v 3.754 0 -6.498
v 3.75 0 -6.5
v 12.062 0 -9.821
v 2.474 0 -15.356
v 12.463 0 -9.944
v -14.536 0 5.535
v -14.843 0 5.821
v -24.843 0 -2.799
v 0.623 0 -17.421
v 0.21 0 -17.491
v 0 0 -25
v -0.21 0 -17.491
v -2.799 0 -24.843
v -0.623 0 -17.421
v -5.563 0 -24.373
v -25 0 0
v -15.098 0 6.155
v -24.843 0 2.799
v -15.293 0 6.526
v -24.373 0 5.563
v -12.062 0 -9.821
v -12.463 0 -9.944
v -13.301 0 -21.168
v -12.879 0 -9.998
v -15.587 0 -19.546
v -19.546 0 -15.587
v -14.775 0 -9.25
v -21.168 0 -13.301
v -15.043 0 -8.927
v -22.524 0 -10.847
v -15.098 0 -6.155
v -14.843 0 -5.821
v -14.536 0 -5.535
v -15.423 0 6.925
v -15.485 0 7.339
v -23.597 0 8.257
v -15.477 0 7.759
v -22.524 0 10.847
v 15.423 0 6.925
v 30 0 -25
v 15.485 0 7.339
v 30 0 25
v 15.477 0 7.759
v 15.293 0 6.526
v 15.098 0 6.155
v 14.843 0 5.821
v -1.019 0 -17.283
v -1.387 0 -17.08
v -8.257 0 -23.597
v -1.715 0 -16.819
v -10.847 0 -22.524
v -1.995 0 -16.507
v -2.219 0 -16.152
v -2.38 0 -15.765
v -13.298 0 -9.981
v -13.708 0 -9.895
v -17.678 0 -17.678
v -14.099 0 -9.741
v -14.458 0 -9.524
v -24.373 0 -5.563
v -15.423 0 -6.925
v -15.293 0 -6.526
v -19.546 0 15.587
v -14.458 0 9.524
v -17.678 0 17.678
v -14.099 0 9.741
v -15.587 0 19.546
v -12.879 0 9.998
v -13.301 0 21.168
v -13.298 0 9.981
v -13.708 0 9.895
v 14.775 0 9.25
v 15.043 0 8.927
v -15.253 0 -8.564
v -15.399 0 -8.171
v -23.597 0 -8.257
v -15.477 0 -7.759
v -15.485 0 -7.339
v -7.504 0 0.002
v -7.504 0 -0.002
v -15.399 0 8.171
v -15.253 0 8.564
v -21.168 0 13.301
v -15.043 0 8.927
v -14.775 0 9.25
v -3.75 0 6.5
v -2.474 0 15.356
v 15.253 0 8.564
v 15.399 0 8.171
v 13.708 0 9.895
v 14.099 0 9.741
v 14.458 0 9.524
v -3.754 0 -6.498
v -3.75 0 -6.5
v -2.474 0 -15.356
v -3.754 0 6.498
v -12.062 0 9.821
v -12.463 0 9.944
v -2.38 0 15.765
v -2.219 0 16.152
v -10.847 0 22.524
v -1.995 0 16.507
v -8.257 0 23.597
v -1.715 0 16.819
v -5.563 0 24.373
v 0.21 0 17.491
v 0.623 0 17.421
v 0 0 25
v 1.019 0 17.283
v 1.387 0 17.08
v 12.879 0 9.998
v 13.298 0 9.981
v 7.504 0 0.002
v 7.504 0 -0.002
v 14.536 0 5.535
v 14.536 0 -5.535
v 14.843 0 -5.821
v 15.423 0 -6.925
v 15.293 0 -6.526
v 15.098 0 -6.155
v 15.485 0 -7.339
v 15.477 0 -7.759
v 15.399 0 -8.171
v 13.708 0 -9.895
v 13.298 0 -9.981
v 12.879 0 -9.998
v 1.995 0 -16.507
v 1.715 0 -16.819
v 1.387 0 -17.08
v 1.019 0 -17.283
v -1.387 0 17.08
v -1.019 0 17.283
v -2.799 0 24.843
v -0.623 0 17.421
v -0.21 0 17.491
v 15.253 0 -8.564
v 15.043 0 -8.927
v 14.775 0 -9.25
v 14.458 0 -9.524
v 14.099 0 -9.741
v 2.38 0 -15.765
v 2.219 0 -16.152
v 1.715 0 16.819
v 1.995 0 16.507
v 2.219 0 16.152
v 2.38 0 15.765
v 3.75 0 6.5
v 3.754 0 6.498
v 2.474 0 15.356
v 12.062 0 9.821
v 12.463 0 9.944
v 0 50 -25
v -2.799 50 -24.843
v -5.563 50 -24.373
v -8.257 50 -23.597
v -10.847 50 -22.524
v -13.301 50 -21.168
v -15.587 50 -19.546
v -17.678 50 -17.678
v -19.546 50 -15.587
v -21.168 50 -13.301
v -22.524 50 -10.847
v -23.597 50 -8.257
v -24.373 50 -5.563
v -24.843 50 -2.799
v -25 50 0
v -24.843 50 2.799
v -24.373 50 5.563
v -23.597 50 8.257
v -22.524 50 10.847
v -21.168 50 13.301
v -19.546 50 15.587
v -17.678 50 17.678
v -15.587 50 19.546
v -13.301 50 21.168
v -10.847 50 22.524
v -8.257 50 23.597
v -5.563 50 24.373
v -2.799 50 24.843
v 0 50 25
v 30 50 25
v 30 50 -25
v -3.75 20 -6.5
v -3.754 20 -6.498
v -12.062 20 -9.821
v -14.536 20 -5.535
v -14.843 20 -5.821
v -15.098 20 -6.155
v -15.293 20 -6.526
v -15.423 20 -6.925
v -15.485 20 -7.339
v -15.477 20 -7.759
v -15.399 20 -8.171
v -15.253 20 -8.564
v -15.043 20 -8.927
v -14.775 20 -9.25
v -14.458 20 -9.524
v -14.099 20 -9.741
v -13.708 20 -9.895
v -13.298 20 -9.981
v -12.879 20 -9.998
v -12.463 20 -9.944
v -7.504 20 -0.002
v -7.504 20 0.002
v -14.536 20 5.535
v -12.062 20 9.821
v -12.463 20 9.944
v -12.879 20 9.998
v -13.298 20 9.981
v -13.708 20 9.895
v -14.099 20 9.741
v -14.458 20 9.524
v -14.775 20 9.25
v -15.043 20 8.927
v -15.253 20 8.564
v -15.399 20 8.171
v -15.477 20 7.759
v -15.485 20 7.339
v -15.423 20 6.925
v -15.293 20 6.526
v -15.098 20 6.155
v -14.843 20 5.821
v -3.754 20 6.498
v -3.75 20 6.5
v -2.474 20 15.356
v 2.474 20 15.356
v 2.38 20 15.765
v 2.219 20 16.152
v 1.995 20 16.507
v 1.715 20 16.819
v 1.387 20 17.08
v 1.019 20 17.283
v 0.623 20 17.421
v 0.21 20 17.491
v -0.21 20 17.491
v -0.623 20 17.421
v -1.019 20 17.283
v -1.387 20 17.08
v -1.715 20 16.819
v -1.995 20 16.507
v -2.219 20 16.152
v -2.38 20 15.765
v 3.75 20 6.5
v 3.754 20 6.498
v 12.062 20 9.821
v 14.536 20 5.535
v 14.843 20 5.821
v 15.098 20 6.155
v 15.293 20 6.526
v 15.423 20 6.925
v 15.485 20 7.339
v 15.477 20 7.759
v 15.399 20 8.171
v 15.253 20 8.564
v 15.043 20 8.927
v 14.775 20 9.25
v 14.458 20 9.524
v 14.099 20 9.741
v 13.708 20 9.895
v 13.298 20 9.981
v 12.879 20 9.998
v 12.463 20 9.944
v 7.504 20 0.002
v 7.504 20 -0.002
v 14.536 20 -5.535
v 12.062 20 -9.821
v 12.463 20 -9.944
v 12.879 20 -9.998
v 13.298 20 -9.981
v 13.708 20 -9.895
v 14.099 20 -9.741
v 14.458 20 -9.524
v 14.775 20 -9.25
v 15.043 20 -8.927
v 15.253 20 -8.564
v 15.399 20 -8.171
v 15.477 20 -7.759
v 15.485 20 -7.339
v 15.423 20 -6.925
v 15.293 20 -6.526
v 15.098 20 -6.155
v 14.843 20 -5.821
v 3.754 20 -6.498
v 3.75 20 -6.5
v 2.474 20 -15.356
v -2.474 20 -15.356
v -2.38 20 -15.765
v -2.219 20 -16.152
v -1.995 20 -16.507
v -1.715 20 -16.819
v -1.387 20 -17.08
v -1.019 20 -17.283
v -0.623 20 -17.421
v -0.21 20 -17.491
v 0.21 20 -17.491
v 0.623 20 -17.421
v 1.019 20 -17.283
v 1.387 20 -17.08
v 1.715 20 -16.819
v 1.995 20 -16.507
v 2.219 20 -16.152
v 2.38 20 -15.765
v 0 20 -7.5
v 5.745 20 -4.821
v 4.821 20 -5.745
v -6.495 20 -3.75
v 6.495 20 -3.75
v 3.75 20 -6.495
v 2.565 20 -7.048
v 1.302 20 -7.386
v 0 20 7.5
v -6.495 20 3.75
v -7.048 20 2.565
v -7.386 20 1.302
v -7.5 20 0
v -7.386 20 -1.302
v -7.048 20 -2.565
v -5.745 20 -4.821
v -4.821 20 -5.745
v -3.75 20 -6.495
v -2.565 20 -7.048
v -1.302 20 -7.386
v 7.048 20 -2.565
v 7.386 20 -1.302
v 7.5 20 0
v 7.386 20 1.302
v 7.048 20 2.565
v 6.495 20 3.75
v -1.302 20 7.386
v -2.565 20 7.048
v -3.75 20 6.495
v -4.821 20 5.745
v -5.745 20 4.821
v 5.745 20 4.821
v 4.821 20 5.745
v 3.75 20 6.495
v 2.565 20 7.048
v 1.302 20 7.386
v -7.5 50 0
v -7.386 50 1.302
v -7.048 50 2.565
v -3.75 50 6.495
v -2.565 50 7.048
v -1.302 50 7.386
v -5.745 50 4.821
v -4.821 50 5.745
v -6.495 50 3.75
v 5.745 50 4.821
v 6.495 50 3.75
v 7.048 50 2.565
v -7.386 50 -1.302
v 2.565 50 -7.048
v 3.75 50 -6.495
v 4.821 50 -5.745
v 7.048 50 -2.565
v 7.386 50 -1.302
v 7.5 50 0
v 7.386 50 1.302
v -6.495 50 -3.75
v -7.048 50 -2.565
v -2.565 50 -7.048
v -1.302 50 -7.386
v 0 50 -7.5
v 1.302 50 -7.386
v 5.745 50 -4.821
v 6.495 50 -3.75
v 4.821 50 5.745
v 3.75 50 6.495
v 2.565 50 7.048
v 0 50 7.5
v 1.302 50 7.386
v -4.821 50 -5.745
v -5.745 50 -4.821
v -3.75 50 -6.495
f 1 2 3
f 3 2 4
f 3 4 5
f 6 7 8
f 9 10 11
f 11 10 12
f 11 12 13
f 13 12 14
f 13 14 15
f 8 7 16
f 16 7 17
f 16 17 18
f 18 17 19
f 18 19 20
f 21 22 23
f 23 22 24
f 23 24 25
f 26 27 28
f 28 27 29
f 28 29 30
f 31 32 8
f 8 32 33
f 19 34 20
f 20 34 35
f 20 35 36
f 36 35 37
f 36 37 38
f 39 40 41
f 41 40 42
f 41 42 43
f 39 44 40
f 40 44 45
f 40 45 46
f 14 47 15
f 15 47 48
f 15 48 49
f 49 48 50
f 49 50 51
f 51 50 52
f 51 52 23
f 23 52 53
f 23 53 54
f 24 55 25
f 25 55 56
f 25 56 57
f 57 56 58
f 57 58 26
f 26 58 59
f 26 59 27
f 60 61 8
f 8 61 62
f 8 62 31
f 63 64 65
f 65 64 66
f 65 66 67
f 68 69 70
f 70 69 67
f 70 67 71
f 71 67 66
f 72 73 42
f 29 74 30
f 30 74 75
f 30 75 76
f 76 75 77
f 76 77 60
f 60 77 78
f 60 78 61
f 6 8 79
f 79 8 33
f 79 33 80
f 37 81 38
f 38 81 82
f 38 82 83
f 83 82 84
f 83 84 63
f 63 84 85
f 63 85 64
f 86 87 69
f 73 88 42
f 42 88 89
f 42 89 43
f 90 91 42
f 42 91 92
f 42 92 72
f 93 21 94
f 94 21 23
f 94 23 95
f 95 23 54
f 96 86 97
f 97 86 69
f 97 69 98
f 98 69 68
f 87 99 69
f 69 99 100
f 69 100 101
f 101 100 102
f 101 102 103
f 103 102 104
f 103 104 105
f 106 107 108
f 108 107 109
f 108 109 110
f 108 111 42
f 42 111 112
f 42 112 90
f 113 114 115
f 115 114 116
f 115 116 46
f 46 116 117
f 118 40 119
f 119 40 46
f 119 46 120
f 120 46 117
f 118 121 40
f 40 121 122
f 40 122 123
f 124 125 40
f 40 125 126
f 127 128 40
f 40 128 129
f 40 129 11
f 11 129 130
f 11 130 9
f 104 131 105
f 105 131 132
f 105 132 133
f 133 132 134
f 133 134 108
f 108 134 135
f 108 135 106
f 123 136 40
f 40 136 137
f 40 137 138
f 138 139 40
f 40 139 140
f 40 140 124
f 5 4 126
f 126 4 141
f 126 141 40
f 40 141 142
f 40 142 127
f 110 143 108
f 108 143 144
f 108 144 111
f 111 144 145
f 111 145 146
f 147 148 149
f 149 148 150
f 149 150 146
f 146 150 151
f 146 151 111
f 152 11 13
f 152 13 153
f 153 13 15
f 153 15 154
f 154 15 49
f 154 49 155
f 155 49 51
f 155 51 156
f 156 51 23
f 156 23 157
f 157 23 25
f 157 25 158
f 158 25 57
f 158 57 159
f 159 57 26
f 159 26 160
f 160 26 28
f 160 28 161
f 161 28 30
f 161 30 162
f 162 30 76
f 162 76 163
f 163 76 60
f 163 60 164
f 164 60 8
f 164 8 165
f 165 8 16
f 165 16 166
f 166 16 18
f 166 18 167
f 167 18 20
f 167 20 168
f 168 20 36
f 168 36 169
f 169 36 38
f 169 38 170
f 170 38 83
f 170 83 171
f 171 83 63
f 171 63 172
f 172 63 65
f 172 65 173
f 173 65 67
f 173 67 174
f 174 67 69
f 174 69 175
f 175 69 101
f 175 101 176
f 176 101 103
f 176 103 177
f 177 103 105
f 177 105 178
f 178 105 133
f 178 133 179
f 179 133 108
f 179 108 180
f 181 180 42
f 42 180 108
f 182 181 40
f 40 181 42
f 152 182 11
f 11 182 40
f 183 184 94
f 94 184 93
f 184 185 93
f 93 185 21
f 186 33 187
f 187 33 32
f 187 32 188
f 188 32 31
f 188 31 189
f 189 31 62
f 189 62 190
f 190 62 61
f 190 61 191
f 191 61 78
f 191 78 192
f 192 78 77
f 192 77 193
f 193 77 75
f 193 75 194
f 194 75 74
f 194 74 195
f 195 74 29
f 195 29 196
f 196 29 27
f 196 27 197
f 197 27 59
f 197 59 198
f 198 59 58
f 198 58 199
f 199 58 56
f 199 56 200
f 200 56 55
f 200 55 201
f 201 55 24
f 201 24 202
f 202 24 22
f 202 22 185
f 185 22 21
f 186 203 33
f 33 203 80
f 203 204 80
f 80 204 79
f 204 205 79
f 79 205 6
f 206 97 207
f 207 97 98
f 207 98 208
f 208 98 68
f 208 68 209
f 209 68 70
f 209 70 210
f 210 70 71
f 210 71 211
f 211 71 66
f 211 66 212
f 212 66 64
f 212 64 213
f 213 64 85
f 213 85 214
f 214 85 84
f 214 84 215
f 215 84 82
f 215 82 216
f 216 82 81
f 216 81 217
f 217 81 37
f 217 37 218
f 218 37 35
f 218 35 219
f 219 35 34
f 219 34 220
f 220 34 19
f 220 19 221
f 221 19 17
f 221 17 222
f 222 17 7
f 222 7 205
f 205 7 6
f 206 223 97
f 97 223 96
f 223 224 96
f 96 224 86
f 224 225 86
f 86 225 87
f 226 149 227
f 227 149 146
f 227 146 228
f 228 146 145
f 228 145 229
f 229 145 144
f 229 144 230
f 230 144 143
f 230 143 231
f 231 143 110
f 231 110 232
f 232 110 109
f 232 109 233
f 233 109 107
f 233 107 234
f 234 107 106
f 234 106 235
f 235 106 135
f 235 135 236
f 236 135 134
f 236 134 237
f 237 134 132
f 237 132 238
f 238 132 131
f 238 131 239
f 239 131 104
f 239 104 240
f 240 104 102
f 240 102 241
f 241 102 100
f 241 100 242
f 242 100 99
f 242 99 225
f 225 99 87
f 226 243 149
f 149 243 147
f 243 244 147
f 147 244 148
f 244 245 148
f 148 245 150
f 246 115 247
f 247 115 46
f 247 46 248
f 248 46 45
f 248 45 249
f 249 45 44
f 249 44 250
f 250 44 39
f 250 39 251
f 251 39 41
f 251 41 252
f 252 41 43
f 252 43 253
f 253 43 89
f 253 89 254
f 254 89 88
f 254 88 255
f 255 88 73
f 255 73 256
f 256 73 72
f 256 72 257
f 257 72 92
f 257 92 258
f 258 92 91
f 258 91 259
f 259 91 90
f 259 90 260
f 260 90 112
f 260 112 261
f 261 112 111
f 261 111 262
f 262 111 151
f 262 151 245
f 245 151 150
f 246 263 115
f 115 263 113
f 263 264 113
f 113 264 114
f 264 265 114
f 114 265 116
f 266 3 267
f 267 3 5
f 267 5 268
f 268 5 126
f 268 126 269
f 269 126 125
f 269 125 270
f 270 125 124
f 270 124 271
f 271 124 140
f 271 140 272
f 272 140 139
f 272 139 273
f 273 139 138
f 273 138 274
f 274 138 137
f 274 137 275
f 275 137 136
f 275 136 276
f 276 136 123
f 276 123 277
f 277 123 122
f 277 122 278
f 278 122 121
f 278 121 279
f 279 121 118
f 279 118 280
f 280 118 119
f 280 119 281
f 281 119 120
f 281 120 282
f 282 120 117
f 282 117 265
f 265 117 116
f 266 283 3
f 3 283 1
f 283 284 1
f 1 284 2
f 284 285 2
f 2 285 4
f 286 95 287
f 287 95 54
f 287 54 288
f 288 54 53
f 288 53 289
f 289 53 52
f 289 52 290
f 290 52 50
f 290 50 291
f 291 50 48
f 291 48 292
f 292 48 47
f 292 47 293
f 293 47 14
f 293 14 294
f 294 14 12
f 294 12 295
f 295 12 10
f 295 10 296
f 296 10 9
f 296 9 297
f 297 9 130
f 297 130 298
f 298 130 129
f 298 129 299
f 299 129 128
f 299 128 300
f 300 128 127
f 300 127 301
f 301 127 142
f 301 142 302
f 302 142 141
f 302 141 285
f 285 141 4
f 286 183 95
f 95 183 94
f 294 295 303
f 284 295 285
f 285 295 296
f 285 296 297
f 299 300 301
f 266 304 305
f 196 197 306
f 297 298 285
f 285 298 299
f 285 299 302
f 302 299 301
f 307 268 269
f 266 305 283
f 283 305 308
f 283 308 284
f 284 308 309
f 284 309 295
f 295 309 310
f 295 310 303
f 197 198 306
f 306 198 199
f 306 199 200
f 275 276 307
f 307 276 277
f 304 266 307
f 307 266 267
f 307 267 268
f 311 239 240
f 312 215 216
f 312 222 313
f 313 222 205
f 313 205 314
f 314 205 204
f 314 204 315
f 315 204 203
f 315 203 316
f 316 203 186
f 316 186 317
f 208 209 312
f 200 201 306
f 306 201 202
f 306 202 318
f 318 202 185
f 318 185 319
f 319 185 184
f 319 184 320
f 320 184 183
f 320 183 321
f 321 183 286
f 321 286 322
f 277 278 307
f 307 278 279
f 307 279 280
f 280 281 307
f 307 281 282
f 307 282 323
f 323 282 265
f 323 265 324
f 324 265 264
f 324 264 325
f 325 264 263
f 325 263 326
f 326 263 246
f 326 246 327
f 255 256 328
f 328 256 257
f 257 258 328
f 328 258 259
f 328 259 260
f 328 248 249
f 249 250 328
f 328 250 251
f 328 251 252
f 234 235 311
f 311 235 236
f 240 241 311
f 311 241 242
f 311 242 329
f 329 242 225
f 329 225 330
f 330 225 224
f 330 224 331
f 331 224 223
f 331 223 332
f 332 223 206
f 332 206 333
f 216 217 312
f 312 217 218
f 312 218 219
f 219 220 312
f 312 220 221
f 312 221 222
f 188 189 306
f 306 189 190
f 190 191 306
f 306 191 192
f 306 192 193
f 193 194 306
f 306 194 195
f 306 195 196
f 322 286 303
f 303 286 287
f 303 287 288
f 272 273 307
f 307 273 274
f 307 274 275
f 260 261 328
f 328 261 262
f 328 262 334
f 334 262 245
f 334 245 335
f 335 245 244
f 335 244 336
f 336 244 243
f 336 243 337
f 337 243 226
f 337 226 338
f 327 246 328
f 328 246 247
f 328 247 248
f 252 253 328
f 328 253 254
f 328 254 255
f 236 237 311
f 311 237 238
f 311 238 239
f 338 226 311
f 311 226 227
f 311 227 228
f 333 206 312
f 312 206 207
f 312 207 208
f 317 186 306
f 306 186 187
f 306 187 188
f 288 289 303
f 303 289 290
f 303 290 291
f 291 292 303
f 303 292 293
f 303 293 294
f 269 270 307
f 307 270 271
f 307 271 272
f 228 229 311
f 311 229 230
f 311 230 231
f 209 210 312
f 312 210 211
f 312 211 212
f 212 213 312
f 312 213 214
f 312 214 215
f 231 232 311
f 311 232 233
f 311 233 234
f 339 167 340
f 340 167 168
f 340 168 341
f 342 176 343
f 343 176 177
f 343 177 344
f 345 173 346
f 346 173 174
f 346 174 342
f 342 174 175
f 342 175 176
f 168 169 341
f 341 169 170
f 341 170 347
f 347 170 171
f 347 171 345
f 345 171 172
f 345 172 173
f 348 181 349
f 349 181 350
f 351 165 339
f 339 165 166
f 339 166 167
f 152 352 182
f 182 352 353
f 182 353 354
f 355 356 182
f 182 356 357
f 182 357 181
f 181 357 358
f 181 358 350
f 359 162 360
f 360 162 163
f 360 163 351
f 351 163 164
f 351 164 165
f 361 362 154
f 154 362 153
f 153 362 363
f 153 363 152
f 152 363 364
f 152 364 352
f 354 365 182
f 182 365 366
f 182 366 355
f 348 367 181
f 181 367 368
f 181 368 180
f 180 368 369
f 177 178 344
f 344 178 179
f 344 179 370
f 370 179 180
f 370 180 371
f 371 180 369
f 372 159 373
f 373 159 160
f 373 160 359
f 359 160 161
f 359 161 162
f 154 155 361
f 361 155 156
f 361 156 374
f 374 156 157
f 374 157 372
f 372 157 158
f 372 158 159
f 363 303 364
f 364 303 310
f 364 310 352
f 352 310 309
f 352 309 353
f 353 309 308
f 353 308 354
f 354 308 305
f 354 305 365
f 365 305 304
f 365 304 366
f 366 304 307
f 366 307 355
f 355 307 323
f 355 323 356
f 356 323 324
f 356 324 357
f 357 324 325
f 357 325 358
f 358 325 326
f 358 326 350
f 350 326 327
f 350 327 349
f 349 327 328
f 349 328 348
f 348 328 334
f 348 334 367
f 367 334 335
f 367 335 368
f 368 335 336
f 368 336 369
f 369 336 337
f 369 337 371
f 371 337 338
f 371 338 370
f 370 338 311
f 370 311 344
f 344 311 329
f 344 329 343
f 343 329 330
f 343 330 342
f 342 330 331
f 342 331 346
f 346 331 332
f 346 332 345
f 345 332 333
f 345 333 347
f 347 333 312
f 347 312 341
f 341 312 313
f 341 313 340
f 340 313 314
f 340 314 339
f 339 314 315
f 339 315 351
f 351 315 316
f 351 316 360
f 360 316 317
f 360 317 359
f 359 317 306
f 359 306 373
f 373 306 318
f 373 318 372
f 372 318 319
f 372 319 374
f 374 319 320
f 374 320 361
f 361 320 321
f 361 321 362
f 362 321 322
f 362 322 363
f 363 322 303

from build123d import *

# Parameters (mm, degrees)
BOSS_EXTRUDE1_DEPTH = 20
SKETCH2_R           = 7.5
BOSS_EXTRUDE2_DEPTH = 30


with BuildPart() as part:
    # Sketch1 → Boss-Extrude1 (new body)
    with BuildSketch(Plane(origin=(0, 0, 0), x_dir=(1, 0, 0), z_dir=(0, 1, 0))):
        with BuildLine():
            Line((0, -25), (30, -25))
            Line((30, -25), (30, 25))
            Line((30, 25), (0, 25))
            ThreePointArc((0, 25), (-25, 0), (0, -25))
        make_face()
        with BuildLine():
            Line((3.75, 6.5), (2.47446787, 15.356382884))
            ThreePointArc((2.47446787, 15.356382884), (0, 17.5), (-2.47446787, 15.356382884))
            Line((-2.47446787, 15.356382884), (-3.75, 6.5))
            Line((-3.75, 6.5), (-3.754165125, 6.497595264))
            Line((-3.754165125, 6.497595264), (-12.061783753, 9.821143478))
            ThreePointArc((-12.061783753, 9.821143478), (-15.155444566, 8.75), (-14.536251623, 5.535239406))
            Line((-14.536251623, 5.535239406), (-7.504165125, 0.002404736))
            Line((-7.504165125, 0.002404736), (-7.504165125, -0.002404736))
            Line((-7.504165125, -0.002404736), (-14.536251623, -5.535239406))
            ThreePointArc((-14.536251623, -5.535239406), (-15.155444566, -8.75), (-12.061783753, -9.821143478))
            Line((-12.061783753, -9.821143478), (-3.754165125, -6.497595264))
            Line((-3.754165125, -6.497595264), (-3.75, -6.5))
            Line((-3.75, -6.5), (-2.47446787, -15.356382884))
            ThreePointArc((-2.47446787, -15.356382884), (0, -17.5), (2.47446787, -15.356382884))
            Line((2.47446787, -15.356382884), (3.75, -6.5))
            Line((3.75, -6.5), (3.754165125, -6.497595264))
            Line((3.754165125, -6.497595264), (12.061783753, -9.821143478))
            ThreePointArc((12.061783753, -9.821143478), (15.155444566, -8.75), (14.536251623, -5.535239406))
            Line((14.536251623, -5.535239406), (7.504165125, -0.002404736))
            Line((7.504165125, -0.002404736), (7.504165125, 0.002404736))
            Line((7.504165125, 0.002404736), (14.536251623, 5.535239406))
            ThreePointArc((14.536251623, 5.535239406), (15.155444566, 8.75), (12.061783753, 9.821143478))
            Line((12.061783753, 9.821143478), (3.754165125, 6.497595264))
            Line((3.754165125, 6.497595264), (3.75, 6.5))
        make_face(mode=Mode.SUBTRACT)
    extrude(amount=BOSS_EXTRUDE1_DEPTH)

    # Sketch2 → Boss-Extrude2 (add)
    with BuildSketch(Plane(origin=(0, 20, 0), x_dir=(1, 0, 0), z_dir=(0, 1, 0))):
        with BuildLine():
            Line((0, 25), (30, 25))
            Line((30, 25), (30, -25))
            Line((30, -25), (0, -25))
            ThreePointArc((0, -25), (-25, 0), (0, 25))
        make_face()
        with Locations(Location((0, 0, 0), (0, 0, 270))):
            Circle(SKETCH2_R, mode=Mode.SUBTRACT)
    extrude(amount=BOSS_EXTRUDE2_DEPTH)


solid = part.part
